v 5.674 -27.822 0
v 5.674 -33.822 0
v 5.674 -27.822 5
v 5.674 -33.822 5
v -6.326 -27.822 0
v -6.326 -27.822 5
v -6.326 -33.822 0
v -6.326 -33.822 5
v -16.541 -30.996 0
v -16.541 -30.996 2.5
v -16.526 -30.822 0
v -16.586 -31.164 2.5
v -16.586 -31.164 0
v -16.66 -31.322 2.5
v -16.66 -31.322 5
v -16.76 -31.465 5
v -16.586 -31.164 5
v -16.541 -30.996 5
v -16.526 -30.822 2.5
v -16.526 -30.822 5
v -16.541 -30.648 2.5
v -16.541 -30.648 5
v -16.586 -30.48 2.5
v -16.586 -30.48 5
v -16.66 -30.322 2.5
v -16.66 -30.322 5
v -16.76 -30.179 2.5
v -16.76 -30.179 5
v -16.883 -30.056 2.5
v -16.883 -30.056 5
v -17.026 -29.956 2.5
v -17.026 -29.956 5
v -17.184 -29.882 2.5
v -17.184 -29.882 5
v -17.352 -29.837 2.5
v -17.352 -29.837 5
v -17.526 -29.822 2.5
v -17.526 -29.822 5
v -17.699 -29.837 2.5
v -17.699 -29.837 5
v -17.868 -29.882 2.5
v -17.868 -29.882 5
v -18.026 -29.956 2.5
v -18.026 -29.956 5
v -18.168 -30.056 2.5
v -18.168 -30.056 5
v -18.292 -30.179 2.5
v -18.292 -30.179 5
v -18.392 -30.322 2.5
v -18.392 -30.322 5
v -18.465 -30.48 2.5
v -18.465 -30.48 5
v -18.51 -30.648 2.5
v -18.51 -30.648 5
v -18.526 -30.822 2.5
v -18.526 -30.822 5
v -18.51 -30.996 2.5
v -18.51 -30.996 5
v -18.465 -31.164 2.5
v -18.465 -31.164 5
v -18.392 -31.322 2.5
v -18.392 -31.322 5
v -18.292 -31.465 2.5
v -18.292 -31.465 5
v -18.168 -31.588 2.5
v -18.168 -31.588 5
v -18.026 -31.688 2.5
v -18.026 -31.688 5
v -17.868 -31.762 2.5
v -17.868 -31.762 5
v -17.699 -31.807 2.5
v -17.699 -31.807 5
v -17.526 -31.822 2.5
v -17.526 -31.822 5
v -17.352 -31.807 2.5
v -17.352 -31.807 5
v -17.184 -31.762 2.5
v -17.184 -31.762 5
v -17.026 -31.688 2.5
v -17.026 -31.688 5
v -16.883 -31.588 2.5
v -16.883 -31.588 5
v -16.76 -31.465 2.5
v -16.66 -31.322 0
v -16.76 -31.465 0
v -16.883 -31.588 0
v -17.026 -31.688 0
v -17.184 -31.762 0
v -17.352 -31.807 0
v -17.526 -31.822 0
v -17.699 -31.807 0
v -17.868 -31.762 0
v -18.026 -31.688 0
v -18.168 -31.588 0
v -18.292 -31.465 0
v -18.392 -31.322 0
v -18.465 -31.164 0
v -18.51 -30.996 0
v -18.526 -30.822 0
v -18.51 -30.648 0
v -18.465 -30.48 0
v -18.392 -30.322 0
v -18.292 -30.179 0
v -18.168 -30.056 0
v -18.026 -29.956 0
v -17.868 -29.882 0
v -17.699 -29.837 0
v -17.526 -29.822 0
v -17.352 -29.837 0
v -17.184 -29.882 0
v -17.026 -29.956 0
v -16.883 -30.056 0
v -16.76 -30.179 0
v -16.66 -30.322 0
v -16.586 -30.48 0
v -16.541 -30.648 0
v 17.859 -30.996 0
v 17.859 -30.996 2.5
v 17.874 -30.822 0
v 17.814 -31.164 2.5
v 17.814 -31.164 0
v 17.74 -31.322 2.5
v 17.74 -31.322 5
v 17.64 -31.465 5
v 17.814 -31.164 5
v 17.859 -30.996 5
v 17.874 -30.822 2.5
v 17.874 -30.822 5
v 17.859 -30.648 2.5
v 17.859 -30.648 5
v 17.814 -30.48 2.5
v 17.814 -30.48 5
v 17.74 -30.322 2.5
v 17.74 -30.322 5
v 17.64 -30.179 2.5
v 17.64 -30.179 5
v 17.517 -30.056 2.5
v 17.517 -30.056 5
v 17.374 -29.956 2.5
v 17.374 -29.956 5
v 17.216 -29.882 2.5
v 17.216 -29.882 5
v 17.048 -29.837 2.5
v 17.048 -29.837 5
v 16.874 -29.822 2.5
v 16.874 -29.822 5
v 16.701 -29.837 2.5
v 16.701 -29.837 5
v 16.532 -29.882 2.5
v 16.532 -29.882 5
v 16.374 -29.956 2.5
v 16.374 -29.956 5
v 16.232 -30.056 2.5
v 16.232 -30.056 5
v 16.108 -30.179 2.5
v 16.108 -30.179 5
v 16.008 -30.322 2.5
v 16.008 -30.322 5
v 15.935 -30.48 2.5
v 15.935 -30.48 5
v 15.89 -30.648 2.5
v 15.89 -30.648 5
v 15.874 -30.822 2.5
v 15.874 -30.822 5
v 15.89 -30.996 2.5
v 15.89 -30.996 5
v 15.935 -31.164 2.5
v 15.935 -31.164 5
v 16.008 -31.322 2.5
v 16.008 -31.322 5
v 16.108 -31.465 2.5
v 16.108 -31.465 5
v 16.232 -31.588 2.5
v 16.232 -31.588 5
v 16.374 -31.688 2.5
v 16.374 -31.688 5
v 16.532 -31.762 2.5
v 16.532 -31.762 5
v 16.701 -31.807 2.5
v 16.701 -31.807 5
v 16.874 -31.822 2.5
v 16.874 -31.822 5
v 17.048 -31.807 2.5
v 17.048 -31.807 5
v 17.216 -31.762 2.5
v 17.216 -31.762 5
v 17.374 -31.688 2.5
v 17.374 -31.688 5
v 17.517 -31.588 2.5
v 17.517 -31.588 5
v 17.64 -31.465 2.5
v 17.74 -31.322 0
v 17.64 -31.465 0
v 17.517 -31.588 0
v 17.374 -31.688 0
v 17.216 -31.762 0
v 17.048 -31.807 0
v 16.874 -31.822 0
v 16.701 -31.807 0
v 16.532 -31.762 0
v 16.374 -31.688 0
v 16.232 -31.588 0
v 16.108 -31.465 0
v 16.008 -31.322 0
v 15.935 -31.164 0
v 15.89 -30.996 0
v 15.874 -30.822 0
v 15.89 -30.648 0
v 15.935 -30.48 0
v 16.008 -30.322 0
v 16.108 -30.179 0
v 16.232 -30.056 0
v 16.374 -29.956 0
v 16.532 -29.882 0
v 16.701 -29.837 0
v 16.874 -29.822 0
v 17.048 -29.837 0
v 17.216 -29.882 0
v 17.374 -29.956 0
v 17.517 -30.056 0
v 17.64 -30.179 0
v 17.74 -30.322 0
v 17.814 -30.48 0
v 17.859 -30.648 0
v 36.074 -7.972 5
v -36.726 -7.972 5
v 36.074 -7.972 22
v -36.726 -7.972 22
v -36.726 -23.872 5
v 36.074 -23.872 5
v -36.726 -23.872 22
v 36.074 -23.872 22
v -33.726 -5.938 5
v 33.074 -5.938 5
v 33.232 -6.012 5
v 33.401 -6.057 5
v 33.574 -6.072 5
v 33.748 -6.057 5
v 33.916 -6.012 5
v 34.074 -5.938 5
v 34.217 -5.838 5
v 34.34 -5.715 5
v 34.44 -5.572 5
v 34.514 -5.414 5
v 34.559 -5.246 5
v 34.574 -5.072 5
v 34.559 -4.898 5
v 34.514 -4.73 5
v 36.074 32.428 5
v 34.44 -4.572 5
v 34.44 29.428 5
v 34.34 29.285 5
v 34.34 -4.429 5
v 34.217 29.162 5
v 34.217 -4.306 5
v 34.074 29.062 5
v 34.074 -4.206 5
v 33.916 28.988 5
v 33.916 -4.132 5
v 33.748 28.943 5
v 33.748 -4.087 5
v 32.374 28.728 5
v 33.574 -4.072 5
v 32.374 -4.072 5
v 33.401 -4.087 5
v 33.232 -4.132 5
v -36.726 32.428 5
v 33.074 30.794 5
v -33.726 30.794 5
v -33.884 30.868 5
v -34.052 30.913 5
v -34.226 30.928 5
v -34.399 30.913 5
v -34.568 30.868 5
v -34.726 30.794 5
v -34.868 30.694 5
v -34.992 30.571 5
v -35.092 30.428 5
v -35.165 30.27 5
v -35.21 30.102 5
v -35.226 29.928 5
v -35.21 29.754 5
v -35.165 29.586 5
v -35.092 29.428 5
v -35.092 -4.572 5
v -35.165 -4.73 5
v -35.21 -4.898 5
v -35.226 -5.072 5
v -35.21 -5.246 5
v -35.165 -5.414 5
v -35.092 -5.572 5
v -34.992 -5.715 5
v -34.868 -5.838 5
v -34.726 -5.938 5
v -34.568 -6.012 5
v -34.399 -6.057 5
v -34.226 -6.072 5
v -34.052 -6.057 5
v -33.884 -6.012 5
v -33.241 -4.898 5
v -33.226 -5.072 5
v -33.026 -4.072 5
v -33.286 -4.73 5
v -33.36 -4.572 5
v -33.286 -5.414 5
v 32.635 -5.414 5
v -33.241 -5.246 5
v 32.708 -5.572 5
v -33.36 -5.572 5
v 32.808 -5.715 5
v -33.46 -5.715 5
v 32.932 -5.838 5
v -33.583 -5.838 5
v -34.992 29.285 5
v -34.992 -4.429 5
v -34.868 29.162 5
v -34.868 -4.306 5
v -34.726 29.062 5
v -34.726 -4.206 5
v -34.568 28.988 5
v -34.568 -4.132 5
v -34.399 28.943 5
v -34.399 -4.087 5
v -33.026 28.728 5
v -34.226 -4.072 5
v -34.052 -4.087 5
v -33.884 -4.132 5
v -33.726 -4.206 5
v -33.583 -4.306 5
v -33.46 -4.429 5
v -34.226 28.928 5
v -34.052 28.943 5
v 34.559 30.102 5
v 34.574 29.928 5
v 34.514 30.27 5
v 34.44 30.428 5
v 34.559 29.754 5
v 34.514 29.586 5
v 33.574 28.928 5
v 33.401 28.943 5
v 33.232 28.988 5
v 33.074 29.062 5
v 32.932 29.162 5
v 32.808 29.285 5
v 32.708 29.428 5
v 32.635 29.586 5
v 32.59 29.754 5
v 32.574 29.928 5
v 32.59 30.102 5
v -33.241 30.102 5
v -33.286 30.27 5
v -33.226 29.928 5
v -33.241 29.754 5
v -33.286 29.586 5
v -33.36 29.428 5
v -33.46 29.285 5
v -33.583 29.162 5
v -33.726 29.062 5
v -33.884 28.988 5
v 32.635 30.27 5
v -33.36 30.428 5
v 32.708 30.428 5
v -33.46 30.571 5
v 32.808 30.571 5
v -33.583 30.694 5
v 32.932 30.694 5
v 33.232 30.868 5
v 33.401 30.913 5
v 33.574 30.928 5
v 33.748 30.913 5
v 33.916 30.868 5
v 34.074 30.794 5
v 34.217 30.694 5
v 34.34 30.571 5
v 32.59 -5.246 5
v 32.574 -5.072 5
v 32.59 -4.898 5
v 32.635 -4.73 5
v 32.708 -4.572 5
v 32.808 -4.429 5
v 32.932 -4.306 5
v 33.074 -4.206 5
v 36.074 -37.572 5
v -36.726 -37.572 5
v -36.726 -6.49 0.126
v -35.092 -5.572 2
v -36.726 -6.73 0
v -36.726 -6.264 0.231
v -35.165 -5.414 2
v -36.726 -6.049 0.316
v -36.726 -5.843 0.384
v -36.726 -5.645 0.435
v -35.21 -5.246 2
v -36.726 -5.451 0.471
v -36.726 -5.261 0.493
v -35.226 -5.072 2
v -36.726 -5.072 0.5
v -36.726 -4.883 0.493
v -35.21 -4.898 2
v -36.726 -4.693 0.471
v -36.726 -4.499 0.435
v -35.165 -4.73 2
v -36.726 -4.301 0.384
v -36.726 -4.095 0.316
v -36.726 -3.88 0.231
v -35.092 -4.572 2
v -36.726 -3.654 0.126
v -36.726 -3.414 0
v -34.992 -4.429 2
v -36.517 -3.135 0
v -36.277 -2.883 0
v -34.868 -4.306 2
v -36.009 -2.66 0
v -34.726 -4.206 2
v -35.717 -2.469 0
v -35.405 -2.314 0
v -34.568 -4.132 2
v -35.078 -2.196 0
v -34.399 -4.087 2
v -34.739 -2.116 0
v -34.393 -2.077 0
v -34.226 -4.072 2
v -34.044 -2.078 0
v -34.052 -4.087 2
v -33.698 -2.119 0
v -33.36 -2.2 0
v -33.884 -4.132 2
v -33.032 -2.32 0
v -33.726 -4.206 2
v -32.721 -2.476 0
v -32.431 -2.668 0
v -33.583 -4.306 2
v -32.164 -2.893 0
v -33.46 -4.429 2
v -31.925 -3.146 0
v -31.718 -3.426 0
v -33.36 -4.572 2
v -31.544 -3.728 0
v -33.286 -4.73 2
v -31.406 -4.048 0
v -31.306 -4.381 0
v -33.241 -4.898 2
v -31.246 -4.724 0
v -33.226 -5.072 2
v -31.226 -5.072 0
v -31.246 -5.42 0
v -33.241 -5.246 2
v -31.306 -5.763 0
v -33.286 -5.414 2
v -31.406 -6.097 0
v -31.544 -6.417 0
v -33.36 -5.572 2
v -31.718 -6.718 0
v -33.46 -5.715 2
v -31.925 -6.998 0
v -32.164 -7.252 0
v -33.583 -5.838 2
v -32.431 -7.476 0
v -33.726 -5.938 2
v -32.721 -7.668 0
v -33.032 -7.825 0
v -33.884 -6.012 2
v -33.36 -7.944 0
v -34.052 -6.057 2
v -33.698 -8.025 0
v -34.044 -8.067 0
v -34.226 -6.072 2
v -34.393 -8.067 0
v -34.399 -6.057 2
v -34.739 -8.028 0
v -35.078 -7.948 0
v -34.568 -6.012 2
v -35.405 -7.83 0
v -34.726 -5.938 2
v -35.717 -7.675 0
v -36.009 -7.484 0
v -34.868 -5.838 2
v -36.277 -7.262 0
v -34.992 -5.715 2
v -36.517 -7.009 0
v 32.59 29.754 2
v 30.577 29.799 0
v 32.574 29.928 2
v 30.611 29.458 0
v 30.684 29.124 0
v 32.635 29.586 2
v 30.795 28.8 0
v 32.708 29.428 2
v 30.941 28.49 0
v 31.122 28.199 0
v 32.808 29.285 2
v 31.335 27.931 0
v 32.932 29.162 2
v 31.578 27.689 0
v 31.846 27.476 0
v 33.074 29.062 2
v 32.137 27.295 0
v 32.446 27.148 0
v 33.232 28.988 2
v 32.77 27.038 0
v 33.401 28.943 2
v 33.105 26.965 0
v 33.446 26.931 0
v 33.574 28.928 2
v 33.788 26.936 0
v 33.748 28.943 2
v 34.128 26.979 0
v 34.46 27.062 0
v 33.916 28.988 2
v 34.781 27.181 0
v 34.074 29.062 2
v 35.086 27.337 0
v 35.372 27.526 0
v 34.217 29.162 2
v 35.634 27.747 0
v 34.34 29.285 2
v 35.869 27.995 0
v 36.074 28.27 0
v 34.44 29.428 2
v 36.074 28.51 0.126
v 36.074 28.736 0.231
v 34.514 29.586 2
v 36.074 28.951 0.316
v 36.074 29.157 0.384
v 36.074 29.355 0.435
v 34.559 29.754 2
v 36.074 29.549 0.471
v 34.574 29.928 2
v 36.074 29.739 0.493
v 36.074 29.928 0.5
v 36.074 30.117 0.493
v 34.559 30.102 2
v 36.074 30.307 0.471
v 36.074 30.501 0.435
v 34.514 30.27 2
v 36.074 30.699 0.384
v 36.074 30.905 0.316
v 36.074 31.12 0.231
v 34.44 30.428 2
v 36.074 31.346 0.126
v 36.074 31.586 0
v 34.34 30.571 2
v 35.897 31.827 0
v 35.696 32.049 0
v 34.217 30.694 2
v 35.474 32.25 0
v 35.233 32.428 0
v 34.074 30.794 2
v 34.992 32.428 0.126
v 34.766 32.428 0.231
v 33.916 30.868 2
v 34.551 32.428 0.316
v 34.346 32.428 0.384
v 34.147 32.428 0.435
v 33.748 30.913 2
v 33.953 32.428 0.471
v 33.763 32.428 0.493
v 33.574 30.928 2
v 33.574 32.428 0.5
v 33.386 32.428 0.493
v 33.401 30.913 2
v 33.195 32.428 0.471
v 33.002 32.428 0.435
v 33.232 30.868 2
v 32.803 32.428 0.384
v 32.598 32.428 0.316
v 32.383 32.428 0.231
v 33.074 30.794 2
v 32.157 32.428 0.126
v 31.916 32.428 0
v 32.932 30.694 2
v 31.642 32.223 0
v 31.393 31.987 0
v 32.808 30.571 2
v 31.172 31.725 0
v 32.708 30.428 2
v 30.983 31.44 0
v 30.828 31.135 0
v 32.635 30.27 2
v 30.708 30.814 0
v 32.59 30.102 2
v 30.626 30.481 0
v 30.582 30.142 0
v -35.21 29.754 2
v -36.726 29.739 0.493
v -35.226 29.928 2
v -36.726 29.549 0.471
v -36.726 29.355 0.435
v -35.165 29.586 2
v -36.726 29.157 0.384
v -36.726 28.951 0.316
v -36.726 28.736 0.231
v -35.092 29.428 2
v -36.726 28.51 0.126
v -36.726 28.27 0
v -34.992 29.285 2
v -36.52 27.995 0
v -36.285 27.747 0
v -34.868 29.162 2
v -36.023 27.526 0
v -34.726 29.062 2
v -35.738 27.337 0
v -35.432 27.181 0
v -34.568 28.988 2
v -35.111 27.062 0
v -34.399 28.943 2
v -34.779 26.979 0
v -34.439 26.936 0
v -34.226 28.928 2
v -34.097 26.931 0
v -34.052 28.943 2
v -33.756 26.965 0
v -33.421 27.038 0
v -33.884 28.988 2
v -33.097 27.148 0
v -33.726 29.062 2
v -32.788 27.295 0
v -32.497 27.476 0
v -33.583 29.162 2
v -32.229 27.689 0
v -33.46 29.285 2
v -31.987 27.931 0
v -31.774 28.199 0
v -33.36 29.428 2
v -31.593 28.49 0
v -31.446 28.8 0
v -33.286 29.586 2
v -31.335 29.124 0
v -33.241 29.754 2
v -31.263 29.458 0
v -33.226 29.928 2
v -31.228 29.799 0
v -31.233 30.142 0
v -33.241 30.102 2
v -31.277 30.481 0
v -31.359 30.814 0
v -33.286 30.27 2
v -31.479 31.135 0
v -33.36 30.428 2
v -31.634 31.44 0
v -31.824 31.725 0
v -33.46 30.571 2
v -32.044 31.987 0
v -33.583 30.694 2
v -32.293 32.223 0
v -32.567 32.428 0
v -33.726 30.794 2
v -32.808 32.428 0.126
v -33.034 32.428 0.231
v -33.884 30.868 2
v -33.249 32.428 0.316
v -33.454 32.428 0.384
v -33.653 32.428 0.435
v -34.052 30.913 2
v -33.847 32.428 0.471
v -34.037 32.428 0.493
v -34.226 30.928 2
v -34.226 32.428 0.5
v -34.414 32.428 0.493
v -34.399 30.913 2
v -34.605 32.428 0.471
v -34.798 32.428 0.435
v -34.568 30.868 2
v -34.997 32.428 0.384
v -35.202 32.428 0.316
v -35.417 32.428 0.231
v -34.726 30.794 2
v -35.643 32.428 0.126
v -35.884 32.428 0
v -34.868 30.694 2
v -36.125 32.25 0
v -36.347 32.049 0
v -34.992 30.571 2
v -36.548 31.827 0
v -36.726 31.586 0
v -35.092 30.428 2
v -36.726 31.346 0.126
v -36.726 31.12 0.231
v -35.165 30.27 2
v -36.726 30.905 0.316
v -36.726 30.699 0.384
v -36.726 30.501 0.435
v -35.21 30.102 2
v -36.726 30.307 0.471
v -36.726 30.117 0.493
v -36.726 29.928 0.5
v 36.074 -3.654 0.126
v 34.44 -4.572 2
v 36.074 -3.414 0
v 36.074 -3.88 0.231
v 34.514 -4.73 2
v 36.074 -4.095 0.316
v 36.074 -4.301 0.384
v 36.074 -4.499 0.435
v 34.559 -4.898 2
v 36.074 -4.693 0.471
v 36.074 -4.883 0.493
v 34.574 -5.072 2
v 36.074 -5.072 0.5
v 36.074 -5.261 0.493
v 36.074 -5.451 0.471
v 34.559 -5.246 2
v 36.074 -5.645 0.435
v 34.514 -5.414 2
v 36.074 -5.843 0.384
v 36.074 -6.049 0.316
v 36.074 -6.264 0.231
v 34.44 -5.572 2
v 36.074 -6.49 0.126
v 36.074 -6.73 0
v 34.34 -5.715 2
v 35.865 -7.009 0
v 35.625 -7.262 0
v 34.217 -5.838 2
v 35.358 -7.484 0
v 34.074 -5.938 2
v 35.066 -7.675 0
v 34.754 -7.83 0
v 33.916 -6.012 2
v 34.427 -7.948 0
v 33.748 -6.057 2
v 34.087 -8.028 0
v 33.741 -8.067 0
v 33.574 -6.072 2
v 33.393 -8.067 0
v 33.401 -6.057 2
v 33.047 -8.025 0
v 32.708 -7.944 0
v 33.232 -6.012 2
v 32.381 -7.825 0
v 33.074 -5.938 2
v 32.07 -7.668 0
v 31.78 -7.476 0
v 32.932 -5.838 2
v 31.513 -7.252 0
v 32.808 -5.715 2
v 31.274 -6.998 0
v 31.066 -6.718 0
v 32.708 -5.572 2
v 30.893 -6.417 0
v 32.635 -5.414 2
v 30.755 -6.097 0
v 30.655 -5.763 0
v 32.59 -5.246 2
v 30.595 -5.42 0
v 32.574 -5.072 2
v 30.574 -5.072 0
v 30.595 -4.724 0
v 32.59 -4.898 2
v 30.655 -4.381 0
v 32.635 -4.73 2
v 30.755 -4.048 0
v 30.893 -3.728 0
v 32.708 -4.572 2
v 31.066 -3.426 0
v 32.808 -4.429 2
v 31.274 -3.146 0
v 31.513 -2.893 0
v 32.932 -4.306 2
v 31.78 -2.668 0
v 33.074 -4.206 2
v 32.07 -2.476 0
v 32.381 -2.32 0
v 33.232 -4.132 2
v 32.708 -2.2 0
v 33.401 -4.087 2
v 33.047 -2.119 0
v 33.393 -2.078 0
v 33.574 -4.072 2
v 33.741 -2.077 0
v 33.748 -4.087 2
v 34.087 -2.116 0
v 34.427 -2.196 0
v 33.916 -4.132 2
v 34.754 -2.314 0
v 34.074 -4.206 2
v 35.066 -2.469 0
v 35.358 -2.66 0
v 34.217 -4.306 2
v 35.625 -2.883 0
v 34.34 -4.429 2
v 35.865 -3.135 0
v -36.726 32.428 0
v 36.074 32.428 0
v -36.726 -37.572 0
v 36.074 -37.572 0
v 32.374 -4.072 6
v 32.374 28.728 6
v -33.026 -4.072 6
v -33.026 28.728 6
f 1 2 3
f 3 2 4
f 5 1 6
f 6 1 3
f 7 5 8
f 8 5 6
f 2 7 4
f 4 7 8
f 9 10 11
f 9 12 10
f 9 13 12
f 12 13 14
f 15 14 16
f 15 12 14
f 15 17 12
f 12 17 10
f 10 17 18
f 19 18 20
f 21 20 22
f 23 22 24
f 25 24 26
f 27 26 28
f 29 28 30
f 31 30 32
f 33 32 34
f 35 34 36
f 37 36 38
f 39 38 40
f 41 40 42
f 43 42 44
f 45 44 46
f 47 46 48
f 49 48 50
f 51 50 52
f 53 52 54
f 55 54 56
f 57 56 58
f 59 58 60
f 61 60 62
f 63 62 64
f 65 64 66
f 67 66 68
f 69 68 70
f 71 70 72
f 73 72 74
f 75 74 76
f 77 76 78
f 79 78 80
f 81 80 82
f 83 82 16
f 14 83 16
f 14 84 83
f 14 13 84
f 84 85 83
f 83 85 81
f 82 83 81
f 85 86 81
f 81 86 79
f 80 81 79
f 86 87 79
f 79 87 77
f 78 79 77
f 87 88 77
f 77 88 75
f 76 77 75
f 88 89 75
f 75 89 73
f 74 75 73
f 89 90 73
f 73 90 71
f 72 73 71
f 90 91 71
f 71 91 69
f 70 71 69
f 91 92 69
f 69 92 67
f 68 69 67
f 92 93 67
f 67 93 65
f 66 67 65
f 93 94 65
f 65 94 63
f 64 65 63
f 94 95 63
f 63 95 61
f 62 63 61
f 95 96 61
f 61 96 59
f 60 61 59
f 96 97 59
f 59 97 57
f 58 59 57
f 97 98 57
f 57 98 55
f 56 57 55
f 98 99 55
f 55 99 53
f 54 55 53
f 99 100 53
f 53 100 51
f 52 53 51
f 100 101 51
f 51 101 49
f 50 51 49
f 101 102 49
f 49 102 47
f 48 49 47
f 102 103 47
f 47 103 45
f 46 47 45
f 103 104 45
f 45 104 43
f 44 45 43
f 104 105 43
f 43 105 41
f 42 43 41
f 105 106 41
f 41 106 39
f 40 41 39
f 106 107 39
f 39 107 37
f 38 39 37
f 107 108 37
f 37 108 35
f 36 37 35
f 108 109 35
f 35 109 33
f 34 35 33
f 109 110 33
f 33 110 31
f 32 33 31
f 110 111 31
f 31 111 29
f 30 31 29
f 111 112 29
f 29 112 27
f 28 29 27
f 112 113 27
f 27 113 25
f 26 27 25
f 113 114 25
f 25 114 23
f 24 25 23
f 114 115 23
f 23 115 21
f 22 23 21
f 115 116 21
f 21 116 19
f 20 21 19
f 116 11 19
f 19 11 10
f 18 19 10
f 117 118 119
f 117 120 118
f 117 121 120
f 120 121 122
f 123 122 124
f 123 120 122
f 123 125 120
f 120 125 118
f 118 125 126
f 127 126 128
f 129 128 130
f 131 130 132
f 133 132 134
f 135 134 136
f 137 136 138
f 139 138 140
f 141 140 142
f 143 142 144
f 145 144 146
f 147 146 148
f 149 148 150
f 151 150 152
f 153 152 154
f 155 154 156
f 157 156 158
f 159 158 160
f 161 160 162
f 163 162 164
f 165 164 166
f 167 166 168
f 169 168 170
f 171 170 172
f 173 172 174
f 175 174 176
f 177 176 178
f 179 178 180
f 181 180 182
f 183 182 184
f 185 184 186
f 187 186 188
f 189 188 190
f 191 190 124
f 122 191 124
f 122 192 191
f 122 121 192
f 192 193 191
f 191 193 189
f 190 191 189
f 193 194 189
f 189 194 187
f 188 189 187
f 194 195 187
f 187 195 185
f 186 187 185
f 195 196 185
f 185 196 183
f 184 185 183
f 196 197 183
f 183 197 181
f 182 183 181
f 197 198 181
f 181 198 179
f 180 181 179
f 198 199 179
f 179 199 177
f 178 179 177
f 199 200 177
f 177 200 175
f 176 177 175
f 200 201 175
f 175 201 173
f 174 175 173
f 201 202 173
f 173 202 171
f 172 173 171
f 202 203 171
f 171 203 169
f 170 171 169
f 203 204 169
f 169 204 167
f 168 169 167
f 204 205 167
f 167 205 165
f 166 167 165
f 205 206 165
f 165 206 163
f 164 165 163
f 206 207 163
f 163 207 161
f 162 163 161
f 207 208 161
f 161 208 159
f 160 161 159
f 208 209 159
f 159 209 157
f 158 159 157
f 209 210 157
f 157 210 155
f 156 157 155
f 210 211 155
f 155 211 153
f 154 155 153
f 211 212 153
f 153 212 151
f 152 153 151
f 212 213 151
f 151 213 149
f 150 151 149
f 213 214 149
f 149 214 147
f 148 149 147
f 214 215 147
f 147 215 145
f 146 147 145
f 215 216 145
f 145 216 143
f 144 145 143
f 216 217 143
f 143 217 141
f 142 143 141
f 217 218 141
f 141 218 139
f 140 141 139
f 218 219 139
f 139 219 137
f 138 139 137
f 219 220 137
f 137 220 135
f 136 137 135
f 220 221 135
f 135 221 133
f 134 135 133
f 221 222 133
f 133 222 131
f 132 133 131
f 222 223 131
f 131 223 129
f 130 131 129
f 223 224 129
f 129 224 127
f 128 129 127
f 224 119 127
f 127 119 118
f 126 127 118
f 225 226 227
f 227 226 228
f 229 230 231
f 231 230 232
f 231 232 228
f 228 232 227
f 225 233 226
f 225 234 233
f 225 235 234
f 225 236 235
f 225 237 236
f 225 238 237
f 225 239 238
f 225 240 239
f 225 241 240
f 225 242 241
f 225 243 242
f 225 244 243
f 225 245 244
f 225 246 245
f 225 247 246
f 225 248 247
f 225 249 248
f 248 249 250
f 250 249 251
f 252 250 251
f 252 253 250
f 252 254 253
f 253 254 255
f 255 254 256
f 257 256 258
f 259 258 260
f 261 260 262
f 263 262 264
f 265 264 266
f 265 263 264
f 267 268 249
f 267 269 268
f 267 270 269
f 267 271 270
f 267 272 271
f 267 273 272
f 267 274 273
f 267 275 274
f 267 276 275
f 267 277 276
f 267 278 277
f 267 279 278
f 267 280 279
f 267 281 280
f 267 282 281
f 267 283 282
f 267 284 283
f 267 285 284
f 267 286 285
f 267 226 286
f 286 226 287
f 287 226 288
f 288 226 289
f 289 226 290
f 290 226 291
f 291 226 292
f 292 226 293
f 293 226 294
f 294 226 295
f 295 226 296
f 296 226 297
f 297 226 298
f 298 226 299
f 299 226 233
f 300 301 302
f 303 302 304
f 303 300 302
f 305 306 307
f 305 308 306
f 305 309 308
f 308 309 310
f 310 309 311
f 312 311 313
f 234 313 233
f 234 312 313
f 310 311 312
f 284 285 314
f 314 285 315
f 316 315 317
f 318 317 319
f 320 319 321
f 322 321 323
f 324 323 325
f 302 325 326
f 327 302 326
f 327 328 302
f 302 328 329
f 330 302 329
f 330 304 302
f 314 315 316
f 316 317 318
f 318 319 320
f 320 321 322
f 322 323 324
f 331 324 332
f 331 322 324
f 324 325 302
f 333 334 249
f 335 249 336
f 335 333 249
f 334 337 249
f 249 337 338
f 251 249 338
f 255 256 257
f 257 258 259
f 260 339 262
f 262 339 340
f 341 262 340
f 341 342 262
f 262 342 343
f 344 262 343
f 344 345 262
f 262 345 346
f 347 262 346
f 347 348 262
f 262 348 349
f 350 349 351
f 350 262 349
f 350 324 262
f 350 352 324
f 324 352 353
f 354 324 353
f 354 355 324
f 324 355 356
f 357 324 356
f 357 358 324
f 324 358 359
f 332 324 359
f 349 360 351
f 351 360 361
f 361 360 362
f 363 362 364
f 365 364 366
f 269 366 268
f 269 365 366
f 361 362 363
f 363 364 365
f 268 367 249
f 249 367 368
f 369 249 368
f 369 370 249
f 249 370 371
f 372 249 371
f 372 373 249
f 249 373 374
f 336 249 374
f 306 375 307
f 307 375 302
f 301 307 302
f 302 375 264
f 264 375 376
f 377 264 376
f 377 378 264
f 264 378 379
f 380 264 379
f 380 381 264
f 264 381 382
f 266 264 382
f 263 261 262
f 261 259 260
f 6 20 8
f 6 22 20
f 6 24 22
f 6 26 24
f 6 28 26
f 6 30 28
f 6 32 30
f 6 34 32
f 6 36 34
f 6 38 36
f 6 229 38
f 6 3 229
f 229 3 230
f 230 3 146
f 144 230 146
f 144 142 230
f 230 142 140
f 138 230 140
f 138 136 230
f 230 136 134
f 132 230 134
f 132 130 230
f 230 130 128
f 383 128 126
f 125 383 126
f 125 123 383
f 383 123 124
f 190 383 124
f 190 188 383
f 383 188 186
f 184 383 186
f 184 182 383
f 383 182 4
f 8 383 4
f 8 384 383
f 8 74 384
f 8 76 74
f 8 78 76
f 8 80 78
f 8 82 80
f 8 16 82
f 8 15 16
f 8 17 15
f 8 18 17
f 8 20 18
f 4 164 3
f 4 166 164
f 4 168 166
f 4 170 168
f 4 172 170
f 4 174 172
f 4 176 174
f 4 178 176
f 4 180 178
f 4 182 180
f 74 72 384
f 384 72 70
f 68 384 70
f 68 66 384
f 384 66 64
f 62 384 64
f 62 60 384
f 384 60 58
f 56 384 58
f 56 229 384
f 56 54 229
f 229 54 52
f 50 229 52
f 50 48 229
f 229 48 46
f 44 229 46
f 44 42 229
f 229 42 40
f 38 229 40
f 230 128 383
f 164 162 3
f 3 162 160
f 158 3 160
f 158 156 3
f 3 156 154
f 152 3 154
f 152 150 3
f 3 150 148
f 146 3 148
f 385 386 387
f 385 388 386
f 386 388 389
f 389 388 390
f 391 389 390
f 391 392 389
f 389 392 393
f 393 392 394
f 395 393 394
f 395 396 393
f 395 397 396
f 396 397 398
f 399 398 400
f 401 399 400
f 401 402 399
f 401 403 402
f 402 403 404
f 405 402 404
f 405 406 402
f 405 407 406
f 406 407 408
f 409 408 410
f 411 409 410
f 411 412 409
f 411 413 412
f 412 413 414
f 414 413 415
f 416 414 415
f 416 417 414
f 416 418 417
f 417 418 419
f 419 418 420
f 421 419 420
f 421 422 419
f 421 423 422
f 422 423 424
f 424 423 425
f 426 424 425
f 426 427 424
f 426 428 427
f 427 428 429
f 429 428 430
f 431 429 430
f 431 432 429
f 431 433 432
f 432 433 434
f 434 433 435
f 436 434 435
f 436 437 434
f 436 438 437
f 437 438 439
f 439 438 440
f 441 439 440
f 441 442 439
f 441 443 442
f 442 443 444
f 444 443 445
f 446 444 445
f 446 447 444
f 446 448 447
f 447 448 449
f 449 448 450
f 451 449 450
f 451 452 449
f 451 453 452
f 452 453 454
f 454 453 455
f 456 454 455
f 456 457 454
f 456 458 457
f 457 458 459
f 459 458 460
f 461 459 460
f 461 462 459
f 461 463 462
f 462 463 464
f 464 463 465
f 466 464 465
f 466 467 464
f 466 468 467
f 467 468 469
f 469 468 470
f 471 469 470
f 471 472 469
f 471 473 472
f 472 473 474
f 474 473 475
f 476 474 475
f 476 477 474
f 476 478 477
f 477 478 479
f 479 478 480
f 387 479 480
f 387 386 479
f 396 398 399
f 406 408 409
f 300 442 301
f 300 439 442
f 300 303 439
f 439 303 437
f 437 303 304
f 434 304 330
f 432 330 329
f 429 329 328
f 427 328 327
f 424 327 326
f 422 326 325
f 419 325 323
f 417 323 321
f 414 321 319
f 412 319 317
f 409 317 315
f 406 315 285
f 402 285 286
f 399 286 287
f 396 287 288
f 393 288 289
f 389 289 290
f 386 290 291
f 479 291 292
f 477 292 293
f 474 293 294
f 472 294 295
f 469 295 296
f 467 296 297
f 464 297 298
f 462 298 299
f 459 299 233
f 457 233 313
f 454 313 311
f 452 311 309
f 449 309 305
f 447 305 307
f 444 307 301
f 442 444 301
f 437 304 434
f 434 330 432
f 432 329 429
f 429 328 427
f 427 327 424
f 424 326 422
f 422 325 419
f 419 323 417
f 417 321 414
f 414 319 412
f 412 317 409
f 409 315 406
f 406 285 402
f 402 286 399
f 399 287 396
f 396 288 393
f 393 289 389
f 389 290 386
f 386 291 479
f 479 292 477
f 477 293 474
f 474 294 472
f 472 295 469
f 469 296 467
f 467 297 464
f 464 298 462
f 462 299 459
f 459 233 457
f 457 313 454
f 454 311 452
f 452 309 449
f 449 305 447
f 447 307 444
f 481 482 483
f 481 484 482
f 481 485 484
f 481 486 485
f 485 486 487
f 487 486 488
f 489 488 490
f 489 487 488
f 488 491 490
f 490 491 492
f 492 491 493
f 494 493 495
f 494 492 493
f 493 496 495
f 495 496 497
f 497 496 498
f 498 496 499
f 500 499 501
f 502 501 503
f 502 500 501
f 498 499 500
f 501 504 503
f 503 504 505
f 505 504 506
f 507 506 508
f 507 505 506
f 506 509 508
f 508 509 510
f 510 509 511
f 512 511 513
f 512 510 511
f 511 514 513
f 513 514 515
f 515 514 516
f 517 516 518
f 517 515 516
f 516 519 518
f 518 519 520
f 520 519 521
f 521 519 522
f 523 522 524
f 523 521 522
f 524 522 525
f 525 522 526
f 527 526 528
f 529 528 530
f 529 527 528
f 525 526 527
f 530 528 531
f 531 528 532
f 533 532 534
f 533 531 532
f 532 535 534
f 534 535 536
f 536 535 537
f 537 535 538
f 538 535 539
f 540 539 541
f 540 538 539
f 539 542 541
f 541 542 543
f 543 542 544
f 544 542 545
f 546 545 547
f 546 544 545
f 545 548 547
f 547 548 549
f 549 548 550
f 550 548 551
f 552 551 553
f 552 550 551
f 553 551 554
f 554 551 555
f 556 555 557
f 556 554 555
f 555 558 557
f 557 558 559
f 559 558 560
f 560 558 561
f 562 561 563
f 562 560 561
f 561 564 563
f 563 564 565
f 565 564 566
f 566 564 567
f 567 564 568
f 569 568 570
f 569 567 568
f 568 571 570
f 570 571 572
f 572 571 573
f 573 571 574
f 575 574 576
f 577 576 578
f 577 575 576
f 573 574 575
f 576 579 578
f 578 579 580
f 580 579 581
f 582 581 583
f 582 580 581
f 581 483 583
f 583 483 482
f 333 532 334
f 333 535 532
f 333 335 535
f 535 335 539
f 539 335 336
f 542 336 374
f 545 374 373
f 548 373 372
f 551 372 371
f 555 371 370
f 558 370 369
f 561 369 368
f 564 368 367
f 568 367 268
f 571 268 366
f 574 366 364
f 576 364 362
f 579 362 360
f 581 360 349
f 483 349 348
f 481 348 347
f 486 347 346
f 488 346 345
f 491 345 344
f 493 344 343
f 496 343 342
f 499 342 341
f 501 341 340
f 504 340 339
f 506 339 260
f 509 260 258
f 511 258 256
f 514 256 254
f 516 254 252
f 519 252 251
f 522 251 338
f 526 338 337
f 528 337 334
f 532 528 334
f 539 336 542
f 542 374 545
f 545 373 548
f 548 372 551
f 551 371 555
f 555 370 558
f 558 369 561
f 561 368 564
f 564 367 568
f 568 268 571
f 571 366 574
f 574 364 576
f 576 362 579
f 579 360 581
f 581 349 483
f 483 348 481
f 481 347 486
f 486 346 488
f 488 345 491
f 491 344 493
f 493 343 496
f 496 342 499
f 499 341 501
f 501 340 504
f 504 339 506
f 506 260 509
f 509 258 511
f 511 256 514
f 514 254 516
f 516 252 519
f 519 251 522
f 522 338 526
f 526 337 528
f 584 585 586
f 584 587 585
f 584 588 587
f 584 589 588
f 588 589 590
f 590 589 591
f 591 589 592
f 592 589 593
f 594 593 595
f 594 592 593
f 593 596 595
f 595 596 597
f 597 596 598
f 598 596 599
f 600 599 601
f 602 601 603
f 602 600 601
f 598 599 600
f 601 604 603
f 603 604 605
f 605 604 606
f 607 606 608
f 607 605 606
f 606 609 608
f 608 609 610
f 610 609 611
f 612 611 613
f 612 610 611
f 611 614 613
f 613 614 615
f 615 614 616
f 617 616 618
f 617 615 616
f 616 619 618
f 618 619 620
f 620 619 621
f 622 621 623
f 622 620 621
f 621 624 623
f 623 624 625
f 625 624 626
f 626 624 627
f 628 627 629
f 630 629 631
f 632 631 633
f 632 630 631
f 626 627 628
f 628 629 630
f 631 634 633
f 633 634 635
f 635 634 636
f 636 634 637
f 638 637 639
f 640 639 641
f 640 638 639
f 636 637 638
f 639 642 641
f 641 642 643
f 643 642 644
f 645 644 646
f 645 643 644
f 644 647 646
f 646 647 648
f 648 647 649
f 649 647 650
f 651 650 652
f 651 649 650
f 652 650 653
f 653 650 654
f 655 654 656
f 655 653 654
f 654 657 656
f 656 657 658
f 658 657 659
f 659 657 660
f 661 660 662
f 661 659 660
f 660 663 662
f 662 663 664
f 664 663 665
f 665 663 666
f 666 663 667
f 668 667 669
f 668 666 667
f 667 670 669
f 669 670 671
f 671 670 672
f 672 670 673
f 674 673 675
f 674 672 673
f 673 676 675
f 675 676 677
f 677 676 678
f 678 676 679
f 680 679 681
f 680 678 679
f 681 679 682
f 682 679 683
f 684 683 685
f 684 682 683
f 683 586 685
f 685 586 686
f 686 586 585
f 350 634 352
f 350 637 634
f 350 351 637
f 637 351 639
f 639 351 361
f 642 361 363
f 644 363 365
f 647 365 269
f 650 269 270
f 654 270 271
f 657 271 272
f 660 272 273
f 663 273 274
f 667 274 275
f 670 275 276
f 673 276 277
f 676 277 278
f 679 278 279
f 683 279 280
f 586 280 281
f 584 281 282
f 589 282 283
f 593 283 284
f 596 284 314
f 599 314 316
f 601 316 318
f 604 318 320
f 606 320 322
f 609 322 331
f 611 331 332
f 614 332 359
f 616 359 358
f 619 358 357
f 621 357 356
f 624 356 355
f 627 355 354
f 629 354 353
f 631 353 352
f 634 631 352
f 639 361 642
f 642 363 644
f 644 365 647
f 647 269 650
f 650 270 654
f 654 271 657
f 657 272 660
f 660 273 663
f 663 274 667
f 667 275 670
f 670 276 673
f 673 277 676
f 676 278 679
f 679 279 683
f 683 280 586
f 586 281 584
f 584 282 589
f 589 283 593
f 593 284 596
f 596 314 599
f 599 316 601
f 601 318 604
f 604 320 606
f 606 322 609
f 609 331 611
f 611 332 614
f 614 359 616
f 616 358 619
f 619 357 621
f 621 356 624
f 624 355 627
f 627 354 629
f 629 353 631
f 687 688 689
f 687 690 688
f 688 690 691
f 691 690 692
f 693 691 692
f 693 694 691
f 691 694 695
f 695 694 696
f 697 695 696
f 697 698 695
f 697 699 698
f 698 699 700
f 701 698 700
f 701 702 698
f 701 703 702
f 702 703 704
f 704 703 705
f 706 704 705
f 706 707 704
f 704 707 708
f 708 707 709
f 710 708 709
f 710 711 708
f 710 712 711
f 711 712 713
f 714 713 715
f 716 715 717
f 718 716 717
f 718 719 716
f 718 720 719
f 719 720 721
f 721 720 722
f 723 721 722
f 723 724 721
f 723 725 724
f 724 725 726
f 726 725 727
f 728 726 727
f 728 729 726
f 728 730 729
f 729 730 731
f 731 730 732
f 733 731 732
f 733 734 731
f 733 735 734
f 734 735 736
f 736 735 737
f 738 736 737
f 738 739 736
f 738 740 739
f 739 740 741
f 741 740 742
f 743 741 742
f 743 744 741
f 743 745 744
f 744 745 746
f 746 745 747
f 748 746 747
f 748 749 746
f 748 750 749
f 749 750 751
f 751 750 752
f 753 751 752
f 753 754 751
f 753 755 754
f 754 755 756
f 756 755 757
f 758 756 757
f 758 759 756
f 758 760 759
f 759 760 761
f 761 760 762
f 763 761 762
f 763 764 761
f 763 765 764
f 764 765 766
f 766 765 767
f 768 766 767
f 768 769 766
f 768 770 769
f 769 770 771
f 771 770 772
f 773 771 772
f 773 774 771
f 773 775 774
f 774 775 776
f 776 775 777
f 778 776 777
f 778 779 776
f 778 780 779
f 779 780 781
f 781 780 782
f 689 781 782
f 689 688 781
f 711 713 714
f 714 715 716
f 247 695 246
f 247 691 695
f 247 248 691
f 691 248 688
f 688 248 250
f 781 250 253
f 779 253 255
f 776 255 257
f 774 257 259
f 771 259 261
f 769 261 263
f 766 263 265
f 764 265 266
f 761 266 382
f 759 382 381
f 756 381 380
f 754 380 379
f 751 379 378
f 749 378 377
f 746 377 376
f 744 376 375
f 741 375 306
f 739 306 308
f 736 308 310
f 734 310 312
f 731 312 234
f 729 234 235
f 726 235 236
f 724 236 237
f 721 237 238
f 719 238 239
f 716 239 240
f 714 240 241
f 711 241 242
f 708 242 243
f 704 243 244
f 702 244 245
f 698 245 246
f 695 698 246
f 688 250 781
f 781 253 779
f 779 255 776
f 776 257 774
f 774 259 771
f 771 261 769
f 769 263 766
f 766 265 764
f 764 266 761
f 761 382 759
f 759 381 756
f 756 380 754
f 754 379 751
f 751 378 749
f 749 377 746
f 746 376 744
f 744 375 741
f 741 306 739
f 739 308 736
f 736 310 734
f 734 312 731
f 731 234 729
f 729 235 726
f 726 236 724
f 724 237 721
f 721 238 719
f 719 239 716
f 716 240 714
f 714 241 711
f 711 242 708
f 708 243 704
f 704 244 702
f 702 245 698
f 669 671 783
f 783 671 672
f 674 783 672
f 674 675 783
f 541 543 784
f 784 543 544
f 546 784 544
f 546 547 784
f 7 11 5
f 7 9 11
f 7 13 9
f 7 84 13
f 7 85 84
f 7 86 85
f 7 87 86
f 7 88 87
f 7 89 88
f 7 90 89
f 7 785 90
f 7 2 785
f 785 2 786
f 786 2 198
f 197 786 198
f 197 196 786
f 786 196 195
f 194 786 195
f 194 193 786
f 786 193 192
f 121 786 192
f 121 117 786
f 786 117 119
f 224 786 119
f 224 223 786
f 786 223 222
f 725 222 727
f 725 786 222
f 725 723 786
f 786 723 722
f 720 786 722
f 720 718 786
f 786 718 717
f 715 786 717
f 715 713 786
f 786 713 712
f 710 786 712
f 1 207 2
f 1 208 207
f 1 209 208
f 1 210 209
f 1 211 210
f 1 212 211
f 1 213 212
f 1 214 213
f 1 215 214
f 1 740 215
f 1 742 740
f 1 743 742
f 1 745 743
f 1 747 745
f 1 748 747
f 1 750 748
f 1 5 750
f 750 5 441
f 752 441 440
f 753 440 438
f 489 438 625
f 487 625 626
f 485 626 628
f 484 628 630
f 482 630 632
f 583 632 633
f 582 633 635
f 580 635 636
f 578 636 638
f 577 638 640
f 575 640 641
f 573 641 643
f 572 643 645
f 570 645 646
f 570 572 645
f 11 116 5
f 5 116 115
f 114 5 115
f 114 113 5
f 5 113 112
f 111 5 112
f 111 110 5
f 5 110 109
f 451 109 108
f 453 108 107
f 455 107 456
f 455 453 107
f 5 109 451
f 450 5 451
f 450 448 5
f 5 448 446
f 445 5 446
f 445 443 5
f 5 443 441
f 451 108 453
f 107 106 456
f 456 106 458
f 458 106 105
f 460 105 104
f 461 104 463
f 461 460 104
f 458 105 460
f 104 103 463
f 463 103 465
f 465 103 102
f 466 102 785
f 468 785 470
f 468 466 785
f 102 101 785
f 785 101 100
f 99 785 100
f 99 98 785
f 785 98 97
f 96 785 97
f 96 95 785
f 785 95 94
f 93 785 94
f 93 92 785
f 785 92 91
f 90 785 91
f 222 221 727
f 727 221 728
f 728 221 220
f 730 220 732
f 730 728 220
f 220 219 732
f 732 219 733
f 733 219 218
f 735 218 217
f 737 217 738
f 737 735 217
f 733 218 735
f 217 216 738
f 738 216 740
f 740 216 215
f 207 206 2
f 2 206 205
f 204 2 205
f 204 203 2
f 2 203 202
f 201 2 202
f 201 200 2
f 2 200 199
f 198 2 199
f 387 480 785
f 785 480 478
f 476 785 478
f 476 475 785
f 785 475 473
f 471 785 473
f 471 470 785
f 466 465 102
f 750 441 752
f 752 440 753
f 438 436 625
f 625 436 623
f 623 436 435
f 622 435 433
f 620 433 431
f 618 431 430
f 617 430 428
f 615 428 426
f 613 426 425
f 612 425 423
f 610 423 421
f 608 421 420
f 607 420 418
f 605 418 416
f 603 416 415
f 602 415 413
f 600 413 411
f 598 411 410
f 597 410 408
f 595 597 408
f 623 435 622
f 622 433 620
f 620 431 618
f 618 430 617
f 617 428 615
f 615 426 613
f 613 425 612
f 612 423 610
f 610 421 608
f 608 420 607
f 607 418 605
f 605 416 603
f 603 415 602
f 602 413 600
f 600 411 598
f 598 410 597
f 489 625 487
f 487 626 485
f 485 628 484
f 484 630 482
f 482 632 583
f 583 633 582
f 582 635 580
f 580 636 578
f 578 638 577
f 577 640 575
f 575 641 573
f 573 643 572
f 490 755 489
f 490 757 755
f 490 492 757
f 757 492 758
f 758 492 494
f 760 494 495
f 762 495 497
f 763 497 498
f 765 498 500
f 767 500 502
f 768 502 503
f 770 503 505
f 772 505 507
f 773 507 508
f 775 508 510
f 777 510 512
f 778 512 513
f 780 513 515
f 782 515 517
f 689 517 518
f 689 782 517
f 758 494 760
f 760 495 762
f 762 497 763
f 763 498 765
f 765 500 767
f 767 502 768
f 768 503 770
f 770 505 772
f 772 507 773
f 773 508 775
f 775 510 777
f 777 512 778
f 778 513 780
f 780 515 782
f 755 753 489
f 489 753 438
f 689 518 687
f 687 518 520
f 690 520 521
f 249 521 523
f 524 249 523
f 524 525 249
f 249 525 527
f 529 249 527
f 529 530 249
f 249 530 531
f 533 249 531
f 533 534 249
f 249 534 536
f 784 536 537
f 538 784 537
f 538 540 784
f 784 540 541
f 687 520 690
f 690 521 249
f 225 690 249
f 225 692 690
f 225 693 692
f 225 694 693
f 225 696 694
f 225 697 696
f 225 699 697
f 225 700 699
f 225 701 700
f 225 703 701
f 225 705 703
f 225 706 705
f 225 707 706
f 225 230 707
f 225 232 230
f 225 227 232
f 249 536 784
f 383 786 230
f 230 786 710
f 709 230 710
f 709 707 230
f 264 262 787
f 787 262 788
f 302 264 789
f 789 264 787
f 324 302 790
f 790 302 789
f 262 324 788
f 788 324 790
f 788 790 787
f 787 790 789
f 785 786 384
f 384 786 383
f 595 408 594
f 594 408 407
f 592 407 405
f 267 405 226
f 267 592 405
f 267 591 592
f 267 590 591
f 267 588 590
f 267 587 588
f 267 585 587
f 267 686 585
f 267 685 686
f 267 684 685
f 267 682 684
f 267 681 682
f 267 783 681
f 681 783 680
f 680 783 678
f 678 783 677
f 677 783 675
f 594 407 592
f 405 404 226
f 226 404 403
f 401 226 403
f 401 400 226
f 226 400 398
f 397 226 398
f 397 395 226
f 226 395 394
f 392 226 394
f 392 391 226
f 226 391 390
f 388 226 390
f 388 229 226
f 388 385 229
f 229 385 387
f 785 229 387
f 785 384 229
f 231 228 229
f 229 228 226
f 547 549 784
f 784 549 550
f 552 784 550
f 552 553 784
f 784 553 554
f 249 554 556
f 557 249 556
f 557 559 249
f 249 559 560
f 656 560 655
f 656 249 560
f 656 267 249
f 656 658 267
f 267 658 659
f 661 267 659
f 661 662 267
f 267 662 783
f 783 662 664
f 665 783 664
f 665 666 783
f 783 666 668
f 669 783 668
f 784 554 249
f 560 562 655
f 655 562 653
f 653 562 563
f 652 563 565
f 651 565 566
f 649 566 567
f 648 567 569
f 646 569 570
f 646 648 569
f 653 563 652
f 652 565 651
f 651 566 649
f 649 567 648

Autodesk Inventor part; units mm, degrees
ref_plane "YZ Plane" through (0, 0, 0) normal (1, 0, 0) x (0, 1, 0)
ref_plane "XZ Plane" through (0, 0, 0) normal (0, 1, 0) x (-1, 0, 0)
ref_plane "XY Plane" through (0, 0, 0) normal (0, 0, 1) x (1, 0, 0)
sketch "Sketch1" plane through (0, 0, 0) normal (0, 0, 1) x (1, 0, 0)
  line L0 (-36.7256, 32.4279) -> (36.0744, 32.4279)
  line L1 (36.0744, 32.4279) -> (36.0744, -37.5721)
  line L2 (36.0744, -37.5721) -> (-36.7256, -37.5721)
  line L3 (-36.7256, -37.5721) -> (-36.7256, 32.4279)
  point P0 (0, 0)
  dimension "d0" = 72.8
  dimension "d1" = 70
extrude "Extrusion1" add sketch "Sketch1" along normal blind 5
sketch "Sketch14" plane through (0, 0, 5) normal (0, 0, 1) x (1, 0, 0)
  line L0 (-33.0256, 28.7279) -> (32.3744, 28.7279)
  line L1 (32.3744, 28.7279) -> (32.3744, -4.0721)
  line L2 (32.3744, -4.0721) -> (-33.0256, -4.0721)
  line L3 (-33.0256, -4.0721) -> (-33.0256, 28.7279)
  line L4 (-36.7256, 32.4279) -> (-36.7256, -37.5721) projected
  line L5 (36.0744, -37.5721) -> (36.0744, 32.4279) projected
  line L6 (36.0744, 32.4279) -> (-36.7256, 32.4279) projected
  line L7 (-36.7256, -23.9721) -> (36.0744, -23.9721) projected
  point P0 (0, 0)
  dimension "d92" = 3.7
  dimension "d93" = 3.7
  dimension "d94" = 3.7
  dimension "d99" = 32.8
extrude "Extrusion13" add sketch "Sketch14" along normal blind 1 contours L0 L1 L2 L3
sketch "Sketch15" plane through (0, 0, 0) normal (0, 0, -1) x (-1, 0, 0)
  circle A0 centre (-33.5744, 29.9279) radius 1
  line L0 (36.7256, 32.4279) -> (-36.0744, 32.4279) projected
  line L1 (-36.0744, 32.4279) -> (-36.0744, -37.5721) projected
  line L2 (0.3256, 31.1231) -> (0.3256, 16.9299)
  circle A1 centre (34.2256, 29.9279) radius 1
  line L3 (-36.0744, -7.5721) -> (36.7256, -7.5721)
  line L4 (-36.0744, 12.4279) -> (-22.7568, 12.4279)
  circle A2 centre (-33.5744, -5.0721) radius 1
  circle A3 centre (34.2256, -5.0721) radius 1
  point P0 (0, 0)
  dimension "d100" = 2
  dimension "d101" = 2.5
  dimension "d102" = 2.5
  dimension "d103" = 40
  dimension "d104" = 20
hole "Hole2" at (33.5744, 29.9279, 0) at (-34.2256, 29.9279, 0) at (-34.2256, -5.0721, 0) at (33.5744, -5.0721, 0) direction (0, 0, 1) diameter 2 end through all countersink diameter 6 countersink angle 90
sketch "Sketch18" plane through (0, 0, 5) normal (0, 0, 1) x (1, 0, 0)
  line L0 (-36.7256, -37.5721) -> (-36.7256, -6.7304) projected
  line L1 (36.0744, -37.5721) -> (36.0744, 32.4279) projected
  line L2 (-36.7256, -7.9721) -> (36.0744, -7.9721)
  line L3 (36.0744, -7.9721) -> (36.0744, -23.8721)
  line L4 (36.0744, -23.8721) -> (-36.7256, -23.8721)
  line L5 (-36.7256, -23.8721) -> (-36.7256, -7.9721)
  line L6 (-33.0256, -4.0721) -> (32.3744, -4.0721) projected
  line L7 (-36.7256, -37.5721) -> (36.0744, -37.5721) projected
  point P0 (0, 0)
  dimension "d123" = 3.9
  dimension "d124" = 13.7
extrude "Extrusion16" add sketch "Sketch18" along normal blind 17 contours L0 L2 L1 L4
sketch "Sketch19" plane through (0, 0, 5) normal (0, 0, 1) x (1, 0, 0)
  line L0 (-36.7256, -37.5721) -> (36.0744, -37.5721) projected
  line L1 (-0.3256, -37.5721) -> (-0.3256, -23.8721)
  line L2 (-36.7256, -23.8721) -> (36.0744, -23.8721) projected
  circle A0 centre (-17.5256, -30.8221) radius 1
  circle A1 centre (16.8744, -30.8221) radius 1
  point P0 (0, 0)
  dimension "d127" = 2
  dimension "d128" = 2
  dimension "d129" = 6.75
  dimension "d130" = 6.75
  dimension "d131" = 17.2
  dimension "d132" = 17.2
extrude "Extrusion17" cut sketch "Sketch19" against normal through all
sketch "Sketch20" plane through (0, 0, 5) normal (0, 0, 1) x (1, 0, 0)
  line L0 (-6.3256, -27.8221) -> (5.6744, -27.8221)
  line L1 (5.6744, -27.8221) -> (5.6744, -33.8221)
  line L2 (5.6744, -33.8221) -> (-6.3256, -33.8221)
  line L3 (-6.3256, -33.8221) -> (-6.3256, -27.8221)
  line L4 (-36.7256, -37.5721) -> (36.0744, -37.5721) projected
  line L5 (-36.7256, -23.8721) -> (-36.7256, -37.5721) projected
  point P0 (0, 0)
  dimension "d135" = 12
  dimension "d136" = 6
  dimension "d137" = 3.75
  dimension "d138" = 30.4
extrude "Extrusion18" cut sketch "Sketch20" against normal through all
properties part number "Solonoid holder"
